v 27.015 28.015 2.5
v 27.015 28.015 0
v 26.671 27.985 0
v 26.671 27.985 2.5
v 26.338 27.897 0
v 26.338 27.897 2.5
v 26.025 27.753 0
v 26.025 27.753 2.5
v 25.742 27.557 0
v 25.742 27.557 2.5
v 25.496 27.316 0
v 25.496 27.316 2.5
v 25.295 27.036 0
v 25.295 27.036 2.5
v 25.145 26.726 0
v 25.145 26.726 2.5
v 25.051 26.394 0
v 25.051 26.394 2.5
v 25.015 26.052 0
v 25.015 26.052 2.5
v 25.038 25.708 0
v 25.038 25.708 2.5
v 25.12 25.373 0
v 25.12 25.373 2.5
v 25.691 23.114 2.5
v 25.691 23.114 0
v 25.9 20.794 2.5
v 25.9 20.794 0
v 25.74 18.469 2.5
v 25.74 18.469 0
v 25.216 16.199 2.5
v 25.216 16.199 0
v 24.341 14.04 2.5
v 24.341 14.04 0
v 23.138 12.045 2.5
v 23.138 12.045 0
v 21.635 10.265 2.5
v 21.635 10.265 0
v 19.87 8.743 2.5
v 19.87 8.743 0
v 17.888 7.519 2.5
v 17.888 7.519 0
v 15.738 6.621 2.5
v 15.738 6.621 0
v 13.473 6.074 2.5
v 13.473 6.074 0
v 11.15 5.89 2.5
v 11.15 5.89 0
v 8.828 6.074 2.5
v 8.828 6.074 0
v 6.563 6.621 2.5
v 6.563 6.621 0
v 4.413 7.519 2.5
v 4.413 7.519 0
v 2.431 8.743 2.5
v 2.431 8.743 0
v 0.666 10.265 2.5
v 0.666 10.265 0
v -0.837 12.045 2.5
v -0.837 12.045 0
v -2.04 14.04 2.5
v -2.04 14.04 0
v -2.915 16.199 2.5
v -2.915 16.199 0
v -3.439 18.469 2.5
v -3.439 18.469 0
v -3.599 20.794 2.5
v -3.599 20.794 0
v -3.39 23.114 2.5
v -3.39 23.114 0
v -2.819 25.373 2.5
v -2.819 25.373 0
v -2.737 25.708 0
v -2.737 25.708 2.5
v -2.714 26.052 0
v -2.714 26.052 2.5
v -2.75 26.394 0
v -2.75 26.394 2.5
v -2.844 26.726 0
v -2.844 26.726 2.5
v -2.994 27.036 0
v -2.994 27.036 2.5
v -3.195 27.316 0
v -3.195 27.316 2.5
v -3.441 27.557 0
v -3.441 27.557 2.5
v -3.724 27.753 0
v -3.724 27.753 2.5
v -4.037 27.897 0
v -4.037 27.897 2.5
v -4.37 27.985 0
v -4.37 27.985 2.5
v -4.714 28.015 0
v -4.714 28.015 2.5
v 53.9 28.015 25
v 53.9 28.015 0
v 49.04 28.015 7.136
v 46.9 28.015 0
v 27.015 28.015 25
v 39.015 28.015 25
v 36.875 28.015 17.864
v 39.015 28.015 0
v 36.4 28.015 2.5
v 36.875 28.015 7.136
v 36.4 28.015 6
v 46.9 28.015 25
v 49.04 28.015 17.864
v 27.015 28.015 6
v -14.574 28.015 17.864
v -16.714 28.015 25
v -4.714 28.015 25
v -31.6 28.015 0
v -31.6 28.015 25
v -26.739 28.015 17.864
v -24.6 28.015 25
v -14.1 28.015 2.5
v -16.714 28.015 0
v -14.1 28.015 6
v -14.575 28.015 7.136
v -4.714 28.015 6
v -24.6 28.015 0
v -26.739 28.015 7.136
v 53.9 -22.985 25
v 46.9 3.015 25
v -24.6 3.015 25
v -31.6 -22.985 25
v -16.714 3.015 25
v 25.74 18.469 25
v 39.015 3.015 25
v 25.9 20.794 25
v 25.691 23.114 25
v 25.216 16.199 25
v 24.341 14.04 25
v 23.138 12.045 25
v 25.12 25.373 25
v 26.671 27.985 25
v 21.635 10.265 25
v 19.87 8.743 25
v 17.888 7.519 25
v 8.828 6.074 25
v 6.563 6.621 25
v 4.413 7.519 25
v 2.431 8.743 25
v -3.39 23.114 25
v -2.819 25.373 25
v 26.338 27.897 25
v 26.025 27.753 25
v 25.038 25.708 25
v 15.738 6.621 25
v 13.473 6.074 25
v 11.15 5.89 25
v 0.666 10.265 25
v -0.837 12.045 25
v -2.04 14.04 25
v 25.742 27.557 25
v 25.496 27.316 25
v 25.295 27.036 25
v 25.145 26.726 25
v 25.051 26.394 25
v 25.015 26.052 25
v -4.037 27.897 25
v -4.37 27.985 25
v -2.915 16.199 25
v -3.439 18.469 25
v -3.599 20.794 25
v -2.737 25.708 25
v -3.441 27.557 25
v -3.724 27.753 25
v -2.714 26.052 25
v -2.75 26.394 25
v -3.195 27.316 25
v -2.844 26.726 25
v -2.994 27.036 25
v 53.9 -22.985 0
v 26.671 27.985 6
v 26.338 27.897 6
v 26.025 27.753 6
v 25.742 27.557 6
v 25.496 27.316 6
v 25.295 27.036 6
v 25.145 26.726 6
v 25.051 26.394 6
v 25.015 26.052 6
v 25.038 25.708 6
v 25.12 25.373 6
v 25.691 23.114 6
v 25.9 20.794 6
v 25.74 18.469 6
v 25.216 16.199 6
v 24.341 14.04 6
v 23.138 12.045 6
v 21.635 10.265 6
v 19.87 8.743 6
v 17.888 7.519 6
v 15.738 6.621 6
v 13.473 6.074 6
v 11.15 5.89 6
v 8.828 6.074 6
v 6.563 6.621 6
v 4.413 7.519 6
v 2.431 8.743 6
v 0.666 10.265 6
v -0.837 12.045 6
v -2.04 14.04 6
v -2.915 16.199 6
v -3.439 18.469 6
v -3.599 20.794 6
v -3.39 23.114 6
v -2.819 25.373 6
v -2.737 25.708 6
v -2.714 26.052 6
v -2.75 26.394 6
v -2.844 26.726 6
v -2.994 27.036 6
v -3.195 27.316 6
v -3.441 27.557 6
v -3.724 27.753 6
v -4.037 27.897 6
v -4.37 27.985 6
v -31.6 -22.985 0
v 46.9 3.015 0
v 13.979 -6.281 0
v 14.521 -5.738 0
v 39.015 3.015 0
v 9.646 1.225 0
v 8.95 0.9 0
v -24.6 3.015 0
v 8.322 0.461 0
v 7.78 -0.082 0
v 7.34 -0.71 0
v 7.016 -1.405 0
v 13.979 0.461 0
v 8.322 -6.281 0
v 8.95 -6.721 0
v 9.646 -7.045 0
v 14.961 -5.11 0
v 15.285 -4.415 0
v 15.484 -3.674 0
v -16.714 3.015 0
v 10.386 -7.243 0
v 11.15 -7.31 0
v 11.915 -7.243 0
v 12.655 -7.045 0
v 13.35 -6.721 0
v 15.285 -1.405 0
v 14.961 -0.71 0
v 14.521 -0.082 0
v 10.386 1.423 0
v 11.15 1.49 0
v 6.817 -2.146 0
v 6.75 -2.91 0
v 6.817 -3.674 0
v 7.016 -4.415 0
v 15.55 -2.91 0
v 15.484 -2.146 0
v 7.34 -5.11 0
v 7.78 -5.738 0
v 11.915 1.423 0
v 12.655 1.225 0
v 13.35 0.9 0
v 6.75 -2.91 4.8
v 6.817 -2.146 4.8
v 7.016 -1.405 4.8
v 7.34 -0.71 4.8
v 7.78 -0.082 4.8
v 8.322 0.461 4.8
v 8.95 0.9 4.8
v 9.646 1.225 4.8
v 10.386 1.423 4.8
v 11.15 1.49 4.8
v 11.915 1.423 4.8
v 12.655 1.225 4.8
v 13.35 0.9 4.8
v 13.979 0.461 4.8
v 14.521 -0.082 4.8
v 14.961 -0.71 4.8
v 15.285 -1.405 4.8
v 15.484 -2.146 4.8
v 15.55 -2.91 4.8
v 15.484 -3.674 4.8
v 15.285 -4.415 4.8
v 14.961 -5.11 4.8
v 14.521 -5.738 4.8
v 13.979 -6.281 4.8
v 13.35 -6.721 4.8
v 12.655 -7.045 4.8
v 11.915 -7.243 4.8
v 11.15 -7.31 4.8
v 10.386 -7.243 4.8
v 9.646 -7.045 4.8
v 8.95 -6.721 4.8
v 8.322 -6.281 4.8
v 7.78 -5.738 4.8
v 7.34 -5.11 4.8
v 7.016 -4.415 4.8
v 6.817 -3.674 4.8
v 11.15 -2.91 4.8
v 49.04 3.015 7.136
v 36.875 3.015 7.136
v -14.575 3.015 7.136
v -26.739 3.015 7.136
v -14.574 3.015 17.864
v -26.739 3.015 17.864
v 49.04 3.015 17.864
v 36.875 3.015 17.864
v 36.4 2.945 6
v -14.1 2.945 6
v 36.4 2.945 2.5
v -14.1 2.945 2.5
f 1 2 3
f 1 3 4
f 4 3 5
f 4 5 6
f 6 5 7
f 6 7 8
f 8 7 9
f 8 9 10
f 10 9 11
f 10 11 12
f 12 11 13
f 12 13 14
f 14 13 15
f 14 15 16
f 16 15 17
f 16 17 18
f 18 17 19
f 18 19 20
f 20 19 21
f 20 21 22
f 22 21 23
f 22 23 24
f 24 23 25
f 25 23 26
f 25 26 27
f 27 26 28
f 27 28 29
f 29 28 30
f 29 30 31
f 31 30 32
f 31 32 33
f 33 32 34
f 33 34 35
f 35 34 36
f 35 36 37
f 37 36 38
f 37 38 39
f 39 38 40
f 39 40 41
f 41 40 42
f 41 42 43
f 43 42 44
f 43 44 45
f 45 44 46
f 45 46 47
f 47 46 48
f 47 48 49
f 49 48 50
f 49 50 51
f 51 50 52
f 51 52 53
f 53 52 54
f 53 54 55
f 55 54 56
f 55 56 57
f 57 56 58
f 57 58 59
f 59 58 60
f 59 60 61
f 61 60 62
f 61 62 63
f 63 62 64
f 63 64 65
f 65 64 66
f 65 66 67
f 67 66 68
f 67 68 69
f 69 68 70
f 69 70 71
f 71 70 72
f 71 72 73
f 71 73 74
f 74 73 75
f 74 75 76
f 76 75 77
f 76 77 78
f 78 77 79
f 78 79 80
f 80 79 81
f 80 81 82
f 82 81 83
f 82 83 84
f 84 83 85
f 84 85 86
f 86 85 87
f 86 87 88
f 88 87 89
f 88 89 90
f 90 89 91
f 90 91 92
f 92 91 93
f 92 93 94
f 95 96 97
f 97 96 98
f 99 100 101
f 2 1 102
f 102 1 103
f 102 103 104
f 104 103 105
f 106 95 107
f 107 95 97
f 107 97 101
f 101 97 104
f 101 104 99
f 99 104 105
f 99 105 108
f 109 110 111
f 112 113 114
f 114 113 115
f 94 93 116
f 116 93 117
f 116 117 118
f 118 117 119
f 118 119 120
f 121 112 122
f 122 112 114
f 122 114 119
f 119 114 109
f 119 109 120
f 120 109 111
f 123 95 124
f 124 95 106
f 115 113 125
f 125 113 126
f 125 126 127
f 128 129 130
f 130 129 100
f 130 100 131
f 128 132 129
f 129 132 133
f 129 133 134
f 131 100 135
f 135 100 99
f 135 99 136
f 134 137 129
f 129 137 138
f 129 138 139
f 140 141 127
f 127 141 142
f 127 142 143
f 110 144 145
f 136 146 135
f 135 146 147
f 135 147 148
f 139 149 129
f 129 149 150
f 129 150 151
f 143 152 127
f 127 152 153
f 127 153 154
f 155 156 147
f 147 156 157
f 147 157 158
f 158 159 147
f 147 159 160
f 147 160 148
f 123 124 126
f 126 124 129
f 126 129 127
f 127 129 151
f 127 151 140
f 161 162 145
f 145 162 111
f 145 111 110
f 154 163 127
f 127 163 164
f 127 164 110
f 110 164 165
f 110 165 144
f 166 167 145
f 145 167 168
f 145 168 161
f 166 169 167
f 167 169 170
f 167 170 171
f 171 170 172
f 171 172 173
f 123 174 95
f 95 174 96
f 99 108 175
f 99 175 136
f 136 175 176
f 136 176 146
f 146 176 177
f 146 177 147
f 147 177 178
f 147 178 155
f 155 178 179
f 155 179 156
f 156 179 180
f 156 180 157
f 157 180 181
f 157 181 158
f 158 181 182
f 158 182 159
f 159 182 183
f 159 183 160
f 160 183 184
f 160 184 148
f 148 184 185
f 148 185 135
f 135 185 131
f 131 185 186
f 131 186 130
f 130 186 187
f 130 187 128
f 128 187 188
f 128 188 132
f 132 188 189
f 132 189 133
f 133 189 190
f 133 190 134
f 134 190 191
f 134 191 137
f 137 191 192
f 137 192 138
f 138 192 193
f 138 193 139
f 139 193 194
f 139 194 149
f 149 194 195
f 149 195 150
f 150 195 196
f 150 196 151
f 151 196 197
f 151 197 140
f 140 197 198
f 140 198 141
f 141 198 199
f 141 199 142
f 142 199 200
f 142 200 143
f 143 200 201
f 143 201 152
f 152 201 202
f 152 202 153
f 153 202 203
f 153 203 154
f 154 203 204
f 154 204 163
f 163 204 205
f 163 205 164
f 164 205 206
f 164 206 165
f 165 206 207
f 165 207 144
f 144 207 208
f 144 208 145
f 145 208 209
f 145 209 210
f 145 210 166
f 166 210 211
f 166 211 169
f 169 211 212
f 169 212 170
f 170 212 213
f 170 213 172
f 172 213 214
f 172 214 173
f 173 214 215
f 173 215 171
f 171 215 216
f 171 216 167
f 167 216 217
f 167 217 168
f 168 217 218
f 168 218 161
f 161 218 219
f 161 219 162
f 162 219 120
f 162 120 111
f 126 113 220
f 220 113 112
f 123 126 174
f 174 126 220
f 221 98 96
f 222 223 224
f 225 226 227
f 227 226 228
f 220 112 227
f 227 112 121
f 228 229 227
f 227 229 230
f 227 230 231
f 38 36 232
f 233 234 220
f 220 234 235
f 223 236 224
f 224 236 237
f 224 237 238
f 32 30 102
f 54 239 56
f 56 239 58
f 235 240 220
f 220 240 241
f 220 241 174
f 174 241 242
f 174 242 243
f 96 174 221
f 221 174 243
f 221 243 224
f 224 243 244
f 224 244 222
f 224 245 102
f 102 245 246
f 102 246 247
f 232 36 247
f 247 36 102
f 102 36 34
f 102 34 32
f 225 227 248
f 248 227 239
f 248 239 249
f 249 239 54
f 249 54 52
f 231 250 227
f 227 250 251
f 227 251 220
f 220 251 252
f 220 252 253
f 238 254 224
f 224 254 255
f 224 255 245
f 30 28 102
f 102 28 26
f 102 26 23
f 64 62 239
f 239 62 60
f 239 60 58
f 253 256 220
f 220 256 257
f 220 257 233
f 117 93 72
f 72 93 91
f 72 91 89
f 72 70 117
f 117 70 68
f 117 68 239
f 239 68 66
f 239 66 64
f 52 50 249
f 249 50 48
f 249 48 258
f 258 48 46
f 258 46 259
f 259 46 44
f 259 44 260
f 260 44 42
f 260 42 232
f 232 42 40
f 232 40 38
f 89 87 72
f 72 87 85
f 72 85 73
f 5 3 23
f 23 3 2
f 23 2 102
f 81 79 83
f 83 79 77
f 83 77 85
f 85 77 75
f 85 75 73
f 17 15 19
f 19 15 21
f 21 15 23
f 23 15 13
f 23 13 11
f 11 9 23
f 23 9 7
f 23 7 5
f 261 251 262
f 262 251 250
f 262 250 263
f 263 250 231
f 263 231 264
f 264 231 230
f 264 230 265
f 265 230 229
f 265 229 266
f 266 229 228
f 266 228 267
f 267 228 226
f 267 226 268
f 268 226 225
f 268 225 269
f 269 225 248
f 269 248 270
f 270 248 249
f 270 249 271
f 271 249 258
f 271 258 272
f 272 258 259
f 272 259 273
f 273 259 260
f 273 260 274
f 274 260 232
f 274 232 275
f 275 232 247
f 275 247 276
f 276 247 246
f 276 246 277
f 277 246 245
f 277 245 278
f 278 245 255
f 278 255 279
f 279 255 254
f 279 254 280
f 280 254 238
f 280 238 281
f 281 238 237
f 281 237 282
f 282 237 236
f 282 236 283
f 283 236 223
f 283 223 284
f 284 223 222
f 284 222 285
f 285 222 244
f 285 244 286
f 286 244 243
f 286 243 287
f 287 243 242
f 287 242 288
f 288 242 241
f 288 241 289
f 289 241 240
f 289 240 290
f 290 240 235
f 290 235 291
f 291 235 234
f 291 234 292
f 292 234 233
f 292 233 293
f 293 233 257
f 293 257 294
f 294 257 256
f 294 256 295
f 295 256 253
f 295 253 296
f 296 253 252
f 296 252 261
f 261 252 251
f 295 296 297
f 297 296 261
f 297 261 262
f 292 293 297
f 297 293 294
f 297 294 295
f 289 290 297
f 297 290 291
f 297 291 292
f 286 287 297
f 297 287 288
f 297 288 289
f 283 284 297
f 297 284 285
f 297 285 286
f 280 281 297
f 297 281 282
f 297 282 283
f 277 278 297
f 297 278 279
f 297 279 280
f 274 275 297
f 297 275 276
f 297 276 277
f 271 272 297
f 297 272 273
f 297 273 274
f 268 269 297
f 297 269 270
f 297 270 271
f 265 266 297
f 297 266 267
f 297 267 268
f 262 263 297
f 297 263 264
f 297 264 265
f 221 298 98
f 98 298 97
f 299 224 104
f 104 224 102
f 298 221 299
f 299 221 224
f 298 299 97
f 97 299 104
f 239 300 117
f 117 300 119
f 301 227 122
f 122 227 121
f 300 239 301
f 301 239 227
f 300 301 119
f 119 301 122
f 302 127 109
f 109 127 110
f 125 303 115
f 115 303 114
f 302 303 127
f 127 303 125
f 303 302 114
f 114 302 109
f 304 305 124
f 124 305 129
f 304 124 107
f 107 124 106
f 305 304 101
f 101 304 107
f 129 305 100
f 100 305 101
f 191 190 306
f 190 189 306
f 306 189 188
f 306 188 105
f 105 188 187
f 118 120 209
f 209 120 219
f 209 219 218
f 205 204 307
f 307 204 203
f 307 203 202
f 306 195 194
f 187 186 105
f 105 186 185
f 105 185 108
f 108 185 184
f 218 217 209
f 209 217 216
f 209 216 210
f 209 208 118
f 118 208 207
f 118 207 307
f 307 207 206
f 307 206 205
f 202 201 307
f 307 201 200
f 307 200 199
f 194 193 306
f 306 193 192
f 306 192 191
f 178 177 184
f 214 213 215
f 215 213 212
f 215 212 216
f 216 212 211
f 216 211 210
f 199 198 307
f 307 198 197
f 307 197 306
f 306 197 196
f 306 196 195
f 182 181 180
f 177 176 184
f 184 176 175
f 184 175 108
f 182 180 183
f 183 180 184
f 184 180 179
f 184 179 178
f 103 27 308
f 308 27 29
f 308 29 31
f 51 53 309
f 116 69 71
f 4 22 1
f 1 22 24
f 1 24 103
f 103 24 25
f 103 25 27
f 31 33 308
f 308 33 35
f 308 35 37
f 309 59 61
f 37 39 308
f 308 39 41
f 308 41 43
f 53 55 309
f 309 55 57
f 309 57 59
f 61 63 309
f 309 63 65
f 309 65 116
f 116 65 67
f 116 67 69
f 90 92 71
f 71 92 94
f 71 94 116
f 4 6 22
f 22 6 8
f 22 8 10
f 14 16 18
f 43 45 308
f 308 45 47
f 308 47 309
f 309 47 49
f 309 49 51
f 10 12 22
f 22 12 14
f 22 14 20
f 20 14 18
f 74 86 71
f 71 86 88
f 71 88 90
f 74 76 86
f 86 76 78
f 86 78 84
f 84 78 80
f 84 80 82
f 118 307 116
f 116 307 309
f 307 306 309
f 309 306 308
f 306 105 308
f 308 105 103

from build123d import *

# Parameters (mm, degrees)
BOSS_EXTRUDE1_DEPTH = 25
CUT_EXTRUDE3_START  = -25
SKETCH5_R           = 4.4
CUT_EXTRUDE3_DEPTH  = 4.8
SKETCH6_OUTSIDE_W   = 108.03
SKETCH6_OUTSIDE_H   = 47.53
CUT_EXTRUDE4_DEPTH  = 25
SKETCH8_W           = 50.5
SKETCH8_H           = 25.070079704
CUT_EXTRUDE5_DEPTH  = 3.5


with BuildPart() as part:
    # Sketch2 → Boss-Extrude1 (new body)
    with BuildSketch(Plane.XY):
        with BuildLine():
            Line((53.900497512, 28.014925373), (27.014667046, 28.014925373))
            ThreePointArc((27.014667046, 28.014925373), (25.389308303, 27.180347595), (25.120437848, 25.373134328))
            ThreePointArc((25.120437848, 25.373134328), (11.150497512, 5.889925373), (-2.819442823, 25.373134328))
            ThreePointArc((-2.819442823, 25.373134328), (-3.088313278, 27.180347595), (-4.713672021, 28.014925373))
            Line((-4.713672021, 28.014925373), (-31.599502488, 28.014925373))
            Line((-31.599502488, 28.014925373), (-31.599502488, -22.985074627))
            Line((-31.599502488, -22.985074627), (53.900497512, -22.985074627))
            Line((53.900497512, -22.985074627), (53.900497512, 28.014925373))
        make_face()
    extrude(amount=BOSS_EXTRUDE1_DEPTH)

    # Sketch5 → Cut-Extrude3 (cut)
    with BuildSketch(Plane.XY.offset(25).offset(CUT_EXTRUDE3_START)):
        with Locations((11.150497512, -2.910074627)):
            Circle(SKETCH5_R)
    extrude(amount=CUT_EXTRUDE3_DEPTH, mode=Mode.SUBTRACT)

    # Sketch6 outside → Cut-Extrude4 (cut)
    with BuildSketch(Plane(origin=(0, 28.014925373, 0), x_dir=(1, 0, 0), z_dir=(0, 1, 0))):
        with Locations((11.15, -12.5)):
            Rectangle(SKETCH6_OUTSIDE_W, SKETCH6_OUTSIDE_H)
        Polygon((-24.599502488, 0), (-26.73851519, -7.13632431), (-14.574659319, -7.13632431), (-16.713672021, 0), (-4.713672021, 0), (27.014667046, 0), (39.014667046, 0), (36.875076634, -7.136151124), (49.040087925, -7.136151124), (46.900497512, 0), (53.900497512, 0), (53.900497512, -25), (46.900497512, -25), (49.040087925, -17.863848876), (36.875076634, -17.863848876), (39.014667046, -25), (27.014667046, -25), (-4.713672021, -25), (-16.713672021, -25), (-14.574081609, -17.863848876), (-26.7390929, -17.863848876), (-24.599502488, -25), (-31.599502488, -25), (-31.599502488, 0), align=None, mode=Mode.SUBTRACT)
    extrude(amount=-CUT_EXTRUDE4_DEPTH, mode=Mode.SUBTRACT)

    # Sketch8 → Cut-Extrude5 (cut)
    with BuildSketch(Plane(origin=(0, 0, 2.5), x_dir=(-1, 0, 0), z_dir=(0, 0, -1))):
        with Locations((-11.150497512, 15.479885521)):
            Rectangle(SKETCH8_W, SKETCH8_H)
    extrude(amount=-CUT_EXTRUDE5_DEPTH, mode=Mode.SUBTRACT)


solid = part.part
